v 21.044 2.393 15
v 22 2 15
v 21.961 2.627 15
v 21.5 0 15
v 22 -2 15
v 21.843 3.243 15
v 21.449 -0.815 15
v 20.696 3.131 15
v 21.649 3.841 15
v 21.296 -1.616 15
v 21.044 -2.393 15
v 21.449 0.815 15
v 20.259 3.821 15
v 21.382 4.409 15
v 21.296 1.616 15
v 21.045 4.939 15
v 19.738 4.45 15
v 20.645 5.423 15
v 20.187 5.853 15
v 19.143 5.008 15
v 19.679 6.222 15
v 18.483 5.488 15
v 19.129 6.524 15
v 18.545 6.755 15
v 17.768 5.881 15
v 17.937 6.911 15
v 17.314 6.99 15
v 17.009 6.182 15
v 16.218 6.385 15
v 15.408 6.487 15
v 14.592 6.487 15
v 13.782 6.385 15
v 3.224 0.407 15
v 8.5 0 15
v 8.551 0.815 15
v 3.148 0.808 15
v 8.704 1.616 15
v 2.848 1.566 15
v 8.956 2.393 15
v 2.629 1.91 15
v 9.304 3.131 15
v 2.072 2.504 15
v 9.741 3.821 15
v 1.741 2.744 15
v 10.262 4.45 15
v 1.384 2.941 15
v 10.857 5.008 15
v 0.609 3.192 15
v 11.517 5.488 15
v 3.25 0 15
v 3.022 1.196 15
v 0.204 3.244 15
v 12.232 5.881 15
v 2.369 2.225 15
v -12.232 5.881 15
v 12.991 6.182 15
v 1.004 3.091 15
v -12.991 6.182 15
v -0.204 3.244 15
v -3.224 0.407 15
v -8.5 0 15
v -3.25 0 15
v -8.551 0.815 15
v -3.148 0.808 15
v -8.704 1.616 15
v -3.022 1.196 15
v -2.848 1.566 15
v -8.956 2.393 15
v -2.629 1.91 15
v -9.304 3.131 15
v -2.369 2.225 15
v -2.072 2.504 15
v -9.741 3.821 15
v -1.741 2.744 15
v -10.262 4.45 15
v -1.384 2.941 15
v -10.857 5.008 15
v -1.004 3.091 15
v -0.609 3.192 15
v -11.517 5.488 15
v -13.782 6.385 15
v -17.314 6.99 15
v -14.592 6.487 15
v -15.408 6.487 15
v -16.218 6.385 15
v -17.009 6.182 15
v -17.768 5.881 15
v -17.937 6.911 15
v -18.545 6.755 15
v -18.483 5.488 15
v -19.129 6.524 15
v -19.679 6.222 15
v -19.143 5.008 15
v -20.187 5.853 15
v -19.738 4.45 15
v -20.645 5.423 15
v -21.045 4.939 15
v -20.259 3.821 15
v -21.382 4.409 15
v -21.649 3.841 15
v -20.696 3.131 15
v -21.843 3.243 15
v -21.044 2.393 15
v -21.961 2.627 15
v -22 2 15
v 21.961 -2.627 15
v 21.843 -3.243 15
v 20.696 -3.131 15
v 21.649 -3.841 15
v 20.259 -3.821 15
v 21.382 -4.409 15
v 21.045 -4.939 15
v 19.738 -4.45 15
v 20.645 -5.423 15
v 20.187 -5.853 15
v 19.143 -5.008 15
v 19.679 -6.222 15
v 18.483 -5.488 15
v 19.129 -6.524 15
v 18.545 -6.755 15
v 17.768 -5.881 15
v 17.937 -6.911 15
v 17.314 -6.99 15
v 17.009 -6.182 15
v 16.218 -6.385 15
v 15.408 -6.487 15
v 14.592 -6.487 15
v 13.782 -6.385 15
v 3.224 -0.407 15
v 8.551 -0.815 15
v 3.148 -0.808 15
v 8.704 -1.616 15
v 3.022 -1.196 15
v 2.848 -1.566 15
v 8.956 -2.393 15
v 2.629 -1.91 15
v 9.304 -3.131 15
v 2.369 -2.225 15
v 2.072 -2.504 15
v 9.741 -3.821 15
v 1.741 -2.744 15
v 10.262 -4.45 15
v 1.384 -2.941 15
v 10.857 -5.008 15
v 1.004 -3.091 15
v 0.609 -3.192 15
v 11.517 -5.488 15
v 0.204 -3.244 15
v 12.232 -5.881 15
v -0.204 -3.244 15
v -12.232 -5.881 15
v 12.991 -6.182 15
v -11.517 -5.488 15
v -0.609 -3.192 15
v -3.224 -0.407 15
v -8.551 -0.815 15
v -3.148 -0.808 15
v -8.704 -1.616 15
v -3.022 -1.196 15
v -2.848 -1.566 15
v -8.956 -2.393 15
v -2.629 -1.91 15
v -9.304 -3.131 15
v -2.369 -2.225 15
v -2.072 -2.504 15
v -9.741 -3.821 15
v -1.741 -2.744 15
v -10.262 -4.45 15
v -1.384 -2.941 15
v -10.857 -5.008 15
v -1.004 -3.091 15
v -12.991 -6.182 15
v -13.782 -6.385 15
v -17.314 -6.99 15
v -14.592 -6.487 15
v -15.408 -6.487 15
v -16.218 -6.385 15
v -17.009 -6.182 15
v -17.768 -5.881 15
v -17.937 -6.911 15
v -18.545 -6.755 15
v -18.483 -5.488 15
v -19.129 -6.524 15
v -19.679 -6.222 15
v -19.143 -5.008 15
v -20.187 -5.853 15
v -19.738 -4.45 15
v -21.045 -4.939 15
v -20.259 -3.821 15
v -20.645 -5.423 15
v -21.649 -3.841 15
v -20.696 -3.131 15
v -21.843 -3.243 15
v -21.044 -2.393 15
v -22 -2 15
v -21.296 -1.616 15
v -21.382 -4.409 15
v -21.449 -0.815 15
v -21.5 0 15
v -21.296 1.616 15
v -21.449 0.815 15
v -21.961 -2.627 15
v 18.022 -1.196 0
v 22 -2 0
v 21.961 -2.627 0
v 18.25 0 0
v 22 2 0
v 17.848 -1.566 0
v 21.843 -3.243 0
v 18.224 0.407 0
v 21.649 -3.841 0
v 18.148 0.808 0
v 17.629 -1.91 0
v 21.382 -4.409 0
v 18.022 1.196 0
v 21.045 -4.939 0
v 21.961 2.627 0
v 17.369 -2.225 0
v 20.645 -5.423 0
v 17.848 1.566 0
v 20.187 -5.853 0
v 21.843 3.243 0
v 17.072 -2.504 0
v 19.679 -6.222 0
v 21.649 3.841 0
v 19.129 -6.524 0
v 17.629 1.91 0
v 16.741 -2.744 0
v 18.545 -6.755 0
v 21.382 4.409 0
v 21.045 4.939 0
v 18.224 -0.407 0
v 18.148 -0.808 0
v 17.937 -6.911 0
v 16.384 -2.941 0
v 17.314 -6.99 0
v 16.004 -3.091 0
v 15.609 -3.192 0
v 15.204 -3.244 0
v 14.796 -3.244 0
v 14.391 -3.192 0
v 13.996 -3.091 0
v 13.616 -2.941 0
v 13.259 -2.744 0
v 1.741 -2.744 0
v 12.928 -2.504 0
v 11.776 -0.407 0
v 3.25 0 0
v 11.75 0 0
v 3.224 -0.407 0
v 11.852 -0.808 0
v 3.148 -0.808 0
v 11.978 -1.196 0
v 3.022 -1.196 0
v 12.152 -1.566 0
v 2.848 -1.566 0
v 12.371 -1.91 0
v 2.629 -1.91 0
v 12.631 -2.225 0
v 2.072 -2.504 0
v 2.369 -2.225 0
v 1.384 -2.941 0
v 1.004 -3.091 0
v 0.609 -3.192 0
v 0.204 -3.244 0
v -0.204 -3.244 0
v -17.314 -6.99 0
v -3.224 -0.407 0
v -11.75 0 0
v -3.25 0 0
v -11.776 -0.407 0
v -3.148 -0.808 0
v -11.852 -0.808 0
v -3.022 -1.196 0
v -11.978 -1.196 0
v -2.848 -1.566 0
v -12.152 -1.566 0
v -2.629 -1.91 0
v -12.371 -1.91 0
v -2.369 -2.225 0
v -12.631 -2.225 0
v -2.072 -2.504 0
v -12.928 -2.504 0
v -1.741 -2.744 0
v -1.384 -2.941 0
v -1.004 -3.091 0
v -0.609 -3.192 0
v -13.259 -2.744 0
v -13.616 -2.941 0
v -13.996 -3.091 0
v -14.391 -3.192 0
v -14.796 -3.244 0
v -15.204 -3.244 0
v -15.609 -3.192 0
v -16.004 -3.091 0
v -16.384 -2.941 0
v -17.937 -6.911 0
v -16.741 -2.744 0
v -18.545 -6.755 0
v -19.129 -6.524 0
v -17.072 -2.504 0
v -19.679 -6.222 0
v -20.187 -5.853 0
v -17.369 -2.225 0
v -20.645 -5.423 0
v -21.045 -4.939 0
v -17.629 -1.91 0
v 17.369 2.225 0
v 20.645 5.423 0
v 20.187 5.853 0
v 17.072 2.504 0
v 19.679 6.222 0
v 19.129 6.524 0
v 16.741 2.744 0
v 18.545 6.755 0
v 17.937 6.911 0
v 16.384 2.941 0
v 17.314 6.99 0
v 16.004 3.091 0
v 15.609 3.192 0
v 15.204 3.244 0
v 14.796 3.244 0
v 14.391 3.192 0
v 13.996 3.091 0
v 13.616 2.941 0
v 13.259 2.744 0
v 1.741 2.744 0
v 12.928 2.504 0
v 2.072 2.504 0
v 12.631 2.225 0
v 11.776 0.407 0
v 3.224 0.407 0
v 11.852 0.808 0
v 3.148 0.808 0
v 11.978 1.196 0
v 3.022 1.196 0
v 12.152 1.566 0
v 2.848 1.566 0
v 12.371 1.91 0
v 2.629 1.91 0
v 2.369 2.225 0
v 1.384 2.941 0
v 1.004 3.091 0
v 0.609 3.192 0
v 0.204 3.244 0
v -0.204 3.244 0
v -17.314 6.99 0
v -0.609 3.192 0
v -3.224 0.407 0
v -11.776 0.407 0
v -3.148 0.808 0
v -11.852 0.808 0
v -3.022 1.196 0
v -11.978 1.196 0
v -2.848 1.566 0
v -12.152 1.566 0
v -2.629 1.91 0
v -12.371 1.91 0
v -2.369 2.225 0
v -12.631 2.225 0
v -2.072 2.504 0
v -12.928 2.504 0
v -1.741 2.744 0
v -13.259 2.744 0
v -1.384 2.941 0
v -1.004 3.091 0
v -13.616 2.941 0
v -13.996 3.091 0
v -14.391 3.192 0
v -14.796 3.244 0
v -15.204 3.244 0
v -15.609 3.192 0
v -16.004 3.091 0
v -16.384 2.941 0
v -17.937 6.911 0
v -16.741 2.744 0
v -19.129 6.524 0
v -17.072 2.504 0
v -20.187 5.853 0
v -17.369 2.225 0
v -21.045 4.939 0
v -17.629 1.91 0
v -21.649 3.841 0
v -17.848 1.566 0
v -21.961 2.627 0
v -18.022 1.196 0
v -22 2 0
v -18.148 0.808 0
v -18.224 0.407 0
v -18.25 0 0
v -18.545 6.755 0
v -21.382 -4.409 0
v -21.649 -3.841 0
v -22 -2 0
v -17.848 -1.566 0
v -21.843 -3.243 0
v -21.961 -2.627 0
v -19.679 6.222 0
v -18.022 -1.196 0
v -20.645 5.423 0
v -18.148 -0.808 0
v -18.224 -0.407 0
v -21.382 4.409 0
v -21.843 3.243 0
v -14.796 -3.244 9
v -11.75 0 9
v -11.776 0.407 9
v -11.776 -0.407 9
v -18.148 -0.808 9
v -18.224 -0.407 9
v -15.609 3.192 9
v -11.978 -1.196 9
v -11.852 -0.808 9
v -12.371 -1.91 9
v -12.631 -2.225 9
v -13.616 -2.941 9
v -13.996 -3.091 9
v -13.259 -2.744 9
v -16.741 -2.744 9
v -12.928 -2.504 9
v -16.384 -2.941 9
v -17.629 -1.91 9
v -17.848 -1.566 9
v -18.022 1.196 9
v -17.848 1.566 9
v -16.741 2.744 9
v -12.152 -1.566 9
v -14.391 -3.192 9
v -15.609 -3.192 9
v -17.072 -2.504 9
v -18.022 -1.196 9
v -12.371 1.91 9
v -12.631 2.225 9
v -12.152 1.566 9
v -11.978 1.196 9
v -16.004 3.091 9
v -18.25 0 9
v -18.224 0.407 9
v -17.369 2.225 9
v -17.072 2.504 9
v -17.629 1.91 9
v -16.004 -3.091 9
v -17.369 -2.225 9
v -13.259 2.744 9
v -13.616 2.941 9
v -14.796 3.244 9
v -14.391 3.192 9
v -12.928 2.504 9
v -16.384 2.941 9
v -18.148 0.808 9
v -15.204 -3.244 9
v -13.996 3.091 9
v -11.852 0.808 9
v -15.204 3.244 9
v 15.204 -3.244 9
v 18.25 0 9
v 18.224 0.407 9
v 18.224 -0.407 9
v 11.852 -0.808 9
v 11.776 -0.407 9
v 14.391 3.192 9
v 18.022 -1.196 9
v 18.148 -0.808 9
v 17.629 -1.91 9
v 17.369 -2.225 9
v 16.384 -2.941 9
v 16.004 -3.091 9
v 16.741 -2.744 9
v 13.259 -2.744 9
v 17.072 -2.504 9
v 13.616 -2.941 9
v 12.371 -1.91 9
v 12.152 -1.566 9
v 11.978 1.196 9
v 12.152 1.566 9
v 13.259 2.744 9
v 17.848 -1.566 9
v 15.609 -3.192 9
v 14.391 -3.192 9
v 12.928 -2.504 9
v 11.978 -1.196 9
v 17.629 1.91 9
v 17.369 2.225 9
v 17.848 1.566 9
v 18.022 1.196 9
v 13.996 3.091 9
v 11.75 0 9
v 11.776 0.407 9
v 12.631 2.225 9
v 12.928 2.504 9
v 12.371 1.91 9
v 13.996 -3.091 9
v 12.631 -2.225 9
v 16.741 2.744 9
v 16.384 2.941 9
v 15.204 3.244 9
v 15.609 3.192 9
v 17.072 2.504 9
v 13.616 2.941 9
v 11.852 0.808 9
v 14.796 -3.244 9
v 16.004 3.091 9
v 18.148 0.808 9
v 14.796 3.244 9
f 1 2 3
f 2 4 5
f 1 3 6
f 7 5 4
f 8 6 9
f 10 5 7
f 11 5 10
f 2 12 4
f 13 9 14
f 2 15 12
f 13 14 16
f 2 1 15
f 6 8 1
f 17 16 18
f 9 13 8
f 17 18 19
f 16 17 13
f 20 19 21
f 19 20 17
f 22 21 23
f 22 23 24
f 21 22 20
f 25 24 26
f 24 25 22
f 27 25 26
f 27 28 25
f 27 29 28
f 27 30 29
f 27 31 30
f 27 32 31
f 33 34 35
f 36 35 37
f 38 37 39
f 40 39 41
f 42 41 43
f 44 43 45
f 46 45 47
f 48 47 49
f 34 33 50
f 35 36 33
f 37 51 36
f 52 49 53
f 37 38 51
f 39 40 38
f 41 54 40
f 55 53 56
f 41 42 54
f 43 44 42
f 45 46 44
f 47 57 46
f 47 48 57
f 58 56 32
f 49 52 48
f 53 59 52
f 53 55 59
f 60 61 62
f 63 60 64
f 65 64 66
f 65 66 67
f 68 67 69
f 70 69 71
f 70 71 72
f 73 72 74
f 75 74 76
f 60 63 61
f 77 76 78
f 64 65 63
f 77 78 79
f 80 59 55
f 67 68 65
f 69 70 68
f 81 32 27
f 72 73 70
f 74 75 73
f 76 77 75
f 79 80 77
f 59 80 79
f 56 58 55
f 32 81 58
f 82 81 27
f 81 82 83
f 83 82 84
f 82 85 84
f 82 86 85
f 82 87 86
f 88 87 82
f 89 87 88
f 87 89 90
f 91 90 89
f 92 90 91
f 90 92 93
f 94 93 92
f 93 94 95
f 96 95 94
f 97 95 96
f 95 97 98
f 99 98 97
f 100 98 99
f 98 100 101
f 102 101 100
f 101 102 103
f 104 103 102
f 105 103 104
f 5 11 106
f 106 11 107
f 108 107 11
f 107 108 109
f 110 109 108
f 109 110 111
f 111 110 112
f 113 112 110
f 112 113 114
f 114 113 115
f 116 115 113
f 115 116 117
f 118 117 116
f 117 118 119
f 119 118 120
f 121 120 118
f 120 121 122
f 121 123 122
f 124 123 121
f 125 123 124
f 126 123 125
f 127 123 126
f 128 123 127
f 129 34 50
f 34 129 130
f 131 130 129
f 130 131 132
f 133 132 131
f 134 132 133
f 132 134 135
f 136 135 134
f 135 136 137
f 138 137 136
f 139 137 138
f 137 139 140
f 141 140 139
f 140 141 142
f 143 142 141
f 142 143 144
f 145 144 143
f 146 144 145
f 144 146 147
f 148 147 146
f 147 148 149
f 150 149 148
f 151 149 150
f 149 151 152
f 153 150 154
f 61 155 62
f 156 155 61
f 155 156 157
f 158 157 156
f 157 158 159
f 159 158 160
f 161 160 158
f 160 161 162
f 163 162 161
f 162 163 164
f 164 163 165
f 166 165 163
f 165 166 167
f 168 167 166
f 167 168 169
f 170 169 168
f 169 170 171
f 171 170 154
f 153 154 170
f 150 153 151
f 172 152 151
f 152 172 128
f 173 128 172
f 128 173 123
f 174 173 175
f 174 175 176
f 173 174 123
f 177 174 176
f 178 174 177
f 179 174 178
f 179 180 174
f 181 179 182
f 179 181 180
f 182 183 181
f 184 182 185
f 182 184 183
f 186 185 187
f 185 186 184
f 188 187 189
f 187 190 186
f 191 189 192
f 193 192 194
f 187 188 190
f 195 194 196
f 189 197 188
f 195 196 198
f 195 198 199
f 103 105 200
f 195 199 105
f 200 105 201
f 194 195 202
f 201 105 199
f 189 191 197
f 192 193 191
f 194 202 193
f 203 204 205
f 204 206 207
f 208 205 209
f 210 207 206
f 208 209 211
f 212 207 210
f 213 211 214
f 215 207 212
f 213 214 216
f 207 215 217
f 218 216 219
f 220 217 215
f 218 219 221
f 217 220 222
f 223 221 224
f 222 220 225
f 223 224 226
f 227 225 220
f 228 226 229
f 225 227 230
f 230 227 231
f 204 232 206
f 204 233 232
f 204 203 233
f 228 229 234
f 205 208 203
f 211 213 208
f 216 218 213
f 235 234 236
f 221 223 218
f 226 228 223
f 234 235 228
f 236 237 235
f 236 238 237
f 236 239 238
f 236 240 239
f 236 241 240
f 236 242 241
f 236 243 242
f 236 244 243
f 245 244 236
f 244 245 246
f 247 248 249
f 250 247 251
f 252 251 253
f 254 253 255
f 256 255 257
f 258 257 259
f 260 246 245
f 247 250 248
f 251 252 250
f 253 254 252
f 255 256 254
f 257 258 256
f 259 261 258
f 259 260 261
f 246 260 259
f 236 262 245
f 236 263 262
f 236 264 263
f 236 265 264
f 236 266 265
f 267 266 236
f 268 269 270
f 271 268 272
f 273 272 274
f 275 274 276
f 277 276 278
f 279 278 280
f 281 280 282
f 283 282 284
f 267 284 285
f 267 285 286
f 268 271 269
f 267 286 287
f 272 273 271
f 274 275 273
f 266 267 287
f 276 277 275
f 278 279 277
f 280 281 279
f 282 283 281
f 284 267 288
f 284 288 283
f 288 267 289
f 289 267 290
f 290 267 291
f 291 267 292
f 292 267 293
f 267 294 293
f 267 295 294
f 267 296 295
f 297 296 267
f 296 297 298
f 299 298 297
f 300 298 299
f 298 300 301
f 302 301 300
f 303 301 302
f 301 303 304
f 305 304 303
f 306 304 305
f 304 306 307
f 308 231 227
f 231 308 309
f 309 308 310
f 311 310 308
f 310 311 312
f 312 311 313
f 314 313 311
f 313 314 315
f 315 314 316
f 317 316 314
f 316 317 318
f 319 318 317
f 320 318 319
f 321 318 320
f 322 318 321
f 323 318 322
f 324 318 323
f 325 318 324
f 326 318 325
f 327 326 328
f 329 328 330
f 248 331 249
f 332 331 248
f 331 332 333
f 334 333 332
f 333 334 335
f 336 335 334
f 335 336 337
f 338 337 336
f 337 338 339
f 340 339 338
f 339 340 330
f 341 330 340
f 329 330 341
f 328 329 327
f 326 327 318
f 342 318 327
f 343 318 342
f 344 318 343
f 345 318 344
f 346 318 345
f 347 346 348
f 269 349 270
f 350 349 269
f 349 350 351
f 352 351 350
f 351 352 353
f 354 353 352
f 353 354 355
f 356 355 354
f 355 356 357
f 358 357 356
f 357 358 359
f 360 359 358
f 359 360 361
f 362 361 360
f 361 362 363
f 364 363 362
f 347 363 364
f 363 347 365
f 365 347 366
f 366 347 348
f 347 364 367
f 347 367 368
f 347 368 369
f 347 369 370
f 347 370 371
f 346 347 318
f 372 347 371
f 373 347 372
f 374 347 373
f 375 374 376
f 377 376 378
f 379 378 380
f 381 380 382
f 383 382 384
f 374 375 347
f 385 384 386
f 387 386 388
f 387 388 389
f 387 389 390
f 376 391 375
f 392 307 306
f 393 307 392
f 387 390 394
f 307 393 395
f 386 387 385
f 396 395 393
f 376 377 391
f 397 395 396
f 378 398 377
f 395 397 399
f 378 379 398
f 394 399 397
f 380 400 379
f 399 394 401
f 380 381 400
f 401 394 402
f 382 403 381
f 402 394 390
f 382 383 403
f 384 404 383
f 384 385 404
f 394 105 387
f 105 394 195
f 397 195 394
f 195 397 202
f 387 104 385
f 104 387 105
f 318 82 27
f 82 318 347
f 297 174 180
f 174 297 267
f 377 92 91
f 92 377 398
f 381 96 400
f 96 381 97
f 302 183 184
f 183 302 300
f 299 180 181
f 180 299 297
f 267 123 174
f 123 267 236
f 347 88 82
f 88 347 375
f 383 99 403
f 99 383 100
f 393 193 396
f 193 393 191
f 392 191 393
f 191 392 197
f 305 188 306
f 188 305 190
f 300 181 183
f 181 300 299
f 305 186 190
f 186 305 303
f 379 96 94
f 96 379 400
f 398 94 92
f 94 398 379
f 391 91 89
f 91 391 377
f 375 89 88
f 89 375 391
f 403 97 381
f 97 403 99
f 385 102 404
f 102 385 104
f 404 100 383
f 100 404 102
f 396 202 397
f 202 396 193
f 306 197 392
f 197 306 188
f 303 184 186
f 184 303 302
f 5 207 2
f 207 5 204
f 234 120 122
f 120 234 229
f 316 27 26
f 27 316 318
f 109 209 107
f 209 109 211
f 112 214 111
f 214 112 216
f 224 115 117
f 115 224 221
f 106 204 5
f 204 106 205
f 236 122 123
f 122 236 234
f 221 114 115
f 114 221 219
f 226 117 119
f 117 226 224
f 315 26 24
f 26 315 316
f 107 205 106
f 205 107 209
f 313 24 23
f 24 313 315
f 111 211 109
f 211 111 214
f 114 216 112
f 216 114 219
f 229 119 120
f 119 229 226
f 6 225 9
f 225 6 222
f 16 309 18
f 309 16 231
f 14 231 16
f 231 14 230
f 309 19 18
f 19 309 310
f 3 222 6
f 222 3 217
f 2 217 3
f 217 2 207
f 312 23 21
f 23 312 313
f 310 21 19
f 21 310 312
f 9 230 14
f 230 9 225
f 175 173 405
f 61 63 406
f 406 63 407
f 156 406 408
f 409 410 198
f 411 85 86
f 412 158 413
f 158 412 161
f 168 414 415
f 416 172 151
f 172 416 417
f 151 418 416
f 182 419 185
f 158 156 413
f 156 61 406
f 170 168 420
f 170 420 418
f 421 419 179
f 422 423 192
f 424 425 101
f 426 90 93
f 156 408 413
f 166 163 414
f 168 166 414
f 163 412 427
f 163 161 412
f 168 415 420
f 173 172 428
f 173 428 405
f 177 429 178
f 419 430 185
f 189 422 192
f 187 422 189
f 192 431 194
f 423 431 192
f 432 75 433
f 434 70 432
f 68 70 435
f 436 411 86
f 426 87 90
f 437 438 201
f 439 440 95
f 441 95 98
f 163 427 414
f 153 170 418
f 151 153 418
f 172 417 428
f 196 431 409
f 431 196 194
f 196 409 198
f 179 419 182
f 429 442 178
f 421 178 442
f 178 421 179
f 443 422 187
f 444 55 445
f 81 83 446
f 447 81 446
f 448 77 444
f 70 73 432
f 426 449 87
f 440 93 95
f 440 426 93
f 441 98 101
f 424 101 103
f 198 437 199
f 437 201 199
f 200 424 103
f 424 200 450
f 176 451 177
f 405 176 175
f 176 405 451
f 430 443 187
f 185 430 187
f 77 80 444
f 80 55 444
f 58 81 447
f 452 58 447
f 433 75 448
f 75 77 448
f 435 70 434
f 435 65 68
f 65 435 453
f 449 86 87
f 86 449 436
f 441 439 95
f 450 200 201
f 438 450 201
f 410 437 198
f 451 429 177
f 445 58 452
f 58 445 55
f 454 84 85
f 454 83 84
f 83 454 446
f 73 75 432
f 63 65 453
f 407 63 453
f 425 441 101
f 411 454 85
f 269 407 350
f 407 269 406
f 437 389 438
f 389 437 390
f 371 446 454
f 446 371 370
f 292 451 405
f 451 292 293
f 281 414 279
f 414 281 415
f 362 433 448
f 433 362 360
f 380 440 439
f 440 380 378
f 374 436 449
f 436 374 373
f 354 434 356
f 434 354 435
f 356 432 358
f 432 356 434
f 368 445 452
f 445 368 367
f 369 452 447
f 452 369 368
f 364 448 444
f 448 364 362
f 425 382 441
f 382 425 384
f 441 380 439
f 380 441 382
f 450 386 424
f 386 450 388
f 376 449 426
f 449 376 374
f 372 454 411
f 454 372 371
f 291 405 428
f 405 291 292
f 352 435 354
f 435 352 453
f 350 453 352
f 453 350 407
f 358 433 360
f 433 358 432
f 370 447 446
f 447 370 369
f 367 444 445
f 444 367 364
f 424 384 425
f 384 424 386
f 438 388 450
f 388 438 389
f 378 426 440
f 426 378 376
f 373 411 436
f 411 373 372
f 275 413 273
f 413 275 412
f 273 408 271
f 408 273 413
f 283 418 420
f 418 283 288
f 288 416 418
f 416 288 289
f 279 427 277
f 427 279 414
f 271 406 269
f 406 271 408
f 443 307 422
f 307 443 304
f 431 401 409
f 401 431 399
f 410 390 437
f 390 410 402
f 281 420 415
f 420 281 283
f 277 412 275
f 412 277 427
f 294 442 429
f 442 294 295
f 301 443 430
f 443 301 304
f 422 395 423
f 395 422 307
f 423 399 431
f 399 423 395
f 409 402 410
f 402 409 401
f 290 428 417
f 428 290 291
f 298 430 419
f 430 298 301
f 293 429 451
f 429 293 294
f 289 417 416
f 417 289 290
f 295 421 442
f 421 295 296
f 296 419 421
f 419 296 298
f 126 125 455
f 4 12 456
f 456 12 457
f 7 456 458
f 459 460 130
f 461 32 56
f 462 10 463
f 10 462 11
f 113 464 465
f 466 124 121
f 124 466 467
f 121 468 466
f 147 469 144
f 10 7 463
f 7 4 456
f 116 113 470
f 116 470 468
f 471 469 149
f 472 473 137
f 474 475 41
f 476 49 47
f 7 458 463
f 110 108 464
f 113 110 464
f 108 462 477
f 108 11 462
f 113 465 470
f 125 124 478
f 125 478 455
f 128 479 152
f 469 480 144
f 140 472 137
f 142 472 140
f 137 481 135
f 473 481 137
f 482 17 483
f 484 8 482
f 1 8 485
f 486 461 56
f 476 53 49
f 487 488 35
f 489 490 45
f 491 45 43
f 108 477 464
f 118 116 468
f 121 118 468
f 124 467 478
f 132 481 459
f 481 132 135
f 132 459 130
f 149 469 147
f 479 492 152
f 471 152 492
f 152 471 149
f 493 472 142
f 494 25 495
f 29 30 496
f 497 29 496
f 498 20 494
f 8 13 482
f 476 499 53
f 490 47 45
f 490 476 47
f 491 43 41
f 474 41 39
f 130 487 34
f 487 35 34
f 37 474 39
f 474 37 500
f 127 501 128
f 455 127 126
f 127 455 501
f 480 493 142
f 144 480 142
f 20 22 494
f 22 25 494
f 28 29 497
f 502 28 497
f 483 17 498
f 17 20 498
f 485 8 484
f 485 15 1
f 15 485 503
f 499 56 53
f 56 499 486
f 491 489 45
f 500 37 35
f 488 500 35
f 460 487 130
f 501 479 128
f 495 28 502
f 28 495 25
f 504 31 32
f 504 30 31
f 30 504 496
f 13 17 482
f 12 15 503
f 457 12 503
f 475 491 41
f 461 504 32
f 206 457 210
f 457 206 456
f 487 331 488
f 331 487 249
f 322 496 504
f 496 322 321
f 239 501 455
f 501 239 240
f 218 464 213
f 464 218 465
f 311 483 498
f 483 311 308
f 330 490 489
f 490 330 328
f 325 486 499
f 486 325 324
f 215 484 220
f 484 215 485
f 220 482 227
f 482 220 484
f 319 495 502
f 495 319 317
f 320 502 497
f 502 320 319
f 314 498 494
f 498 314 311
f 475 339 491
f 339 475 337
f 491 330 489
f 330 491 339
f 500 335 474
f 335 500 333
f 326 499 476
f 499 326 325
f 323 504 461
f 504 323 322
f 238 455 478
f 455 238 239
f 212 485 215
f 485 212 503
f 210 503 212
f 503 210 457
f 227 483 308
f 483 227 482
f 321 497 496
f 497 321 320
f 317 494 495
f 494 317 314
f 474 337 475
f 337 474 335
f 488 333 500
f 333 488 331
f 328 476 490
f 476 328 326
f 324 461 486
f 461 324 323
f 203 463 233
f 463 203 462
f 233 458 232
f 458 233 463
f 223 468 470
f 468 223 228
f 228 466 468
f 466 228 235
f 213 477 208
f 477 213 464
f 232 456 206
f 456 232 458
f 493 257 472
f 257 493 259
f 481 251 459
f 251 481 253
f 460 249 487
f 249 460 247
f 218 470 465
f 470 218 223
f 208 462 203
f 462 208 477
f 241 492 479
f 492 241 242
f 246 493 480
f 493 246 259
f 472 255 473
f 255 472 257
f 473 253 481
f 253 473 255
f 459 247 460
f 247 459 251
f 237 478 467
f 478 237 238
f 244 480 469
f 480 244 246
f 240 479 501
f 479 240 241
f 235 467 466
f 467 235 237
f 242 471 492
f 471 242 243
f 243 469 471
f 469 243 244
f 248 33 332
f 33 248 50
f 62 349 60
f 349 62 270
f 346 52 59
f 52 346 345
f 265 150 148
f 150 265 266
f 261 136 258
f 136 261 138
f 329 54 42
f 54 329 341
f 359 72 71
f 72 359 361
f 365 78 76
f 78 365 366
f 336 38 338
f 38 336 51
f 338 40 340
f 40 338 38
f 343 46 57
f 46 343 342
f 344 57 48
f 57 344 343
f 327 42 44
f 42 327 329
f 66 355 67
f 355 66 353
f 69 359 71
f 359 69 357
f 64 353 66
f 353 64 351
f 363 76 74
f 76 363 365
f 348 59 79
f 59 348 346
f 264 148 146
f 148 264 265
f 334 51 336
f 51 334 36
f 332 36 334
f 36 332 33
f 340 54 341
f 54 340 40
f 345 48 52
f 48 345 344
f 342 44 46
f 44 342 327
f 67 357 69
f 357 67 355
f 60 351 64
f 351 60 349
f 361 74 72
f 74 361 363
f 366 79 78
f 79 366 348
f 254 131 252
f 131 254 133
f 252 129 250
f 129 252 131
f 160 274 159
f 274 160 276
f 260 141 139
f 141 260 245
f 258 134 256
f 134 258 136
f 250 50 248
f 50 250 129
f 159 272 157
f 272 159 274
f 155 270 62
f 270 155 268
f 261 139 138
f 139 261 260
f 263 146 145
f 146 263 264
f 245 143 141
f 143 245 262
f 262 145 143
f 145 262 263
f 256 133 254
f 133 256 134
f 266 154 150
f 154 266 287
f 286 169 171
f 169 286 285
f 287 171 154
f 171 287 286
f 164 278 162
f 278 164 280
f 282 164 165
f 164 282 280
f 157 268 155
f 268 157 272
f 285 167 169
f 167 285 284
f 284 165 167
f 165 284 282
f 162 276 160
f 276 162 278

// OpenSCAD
$fn = 50;


difference() {
	union() {
		cylinder(h = 15, r = 7.0000000000);
		translate(v = [-7.5000000000, 0.0000000000, 0]) {
			hull() {
				translate(v = [-9.5000000000, 2.0000000000, 0]) {
					cylinder(h = 15, r = 5);
				}
				translate(v = [9.5000000000, 2.0000000000, 0]) {
					cylinder(h = 15, r = 5);
				}
				translate(v = [-9.5000000000, -2.0000000000, 0]) {
					cylinder(h = 15, r = 5);
				}
				translate(v = [9.5000000000, -2.0000000000, 0]) {
					cylinder(h = 15, r = 5);
				}
			}
		}
		translate(v = [-7.5000000000, 0.0000000000, 0]) {
			hull() {
				translate(v = [-9.5000000000, 2.0000000000, 0]) {
					cylinder(h = 15, r = 5);
				}
				translate(v = [9.5000000000, 2.0000000000, 0]) {
					cylinder(h = 15, r = 5);
				}
				translate(v = [-9.5000000000, -2.0000000000, 0]) {
					cylinder(h = 15, r = 5);
				}
				translate(v = [9.5000000000, -2.0000000000, 0]) {
					cylinder(h = 15, r = 5);
				}
			}
		}
		translate(v = [7.5000000000, 0.0000000000, 0]) {
			hull() {
				translate(v = [-9.5000000000, 2.0000000000, 0]) {
					cylinder(h = 15, r = 5);
				}
				translate(v = [9.5000000000, 2.0000000000, 0]) {
					cylinder(h = 15, r = 5);
				}
				translate(v = [-9.5000000000, -2.0000000000, 0]) {
					cylinder(h = 15, r = 5);
				}
				translate(v = [9.5000000000, -2.0000000000, 0]) {
					cylinder(h = 15, r = 5);
				}
			}
		}
		translate(v = [7.5000000000, 0.0000000000, 0]) {
			hull() {
				translate(v = [-9.5000000000, 2.0000000000, 0]) {
					cylinder(h = 15, r = 5);
				}
				translate(v = [9.5000000000, 2.0000000000, 0]) {
					cylinder(h = 15, r = 5);
				}
				translate(v = [-9.5000000000, -2.0000000000, 0]) {
					cylinder(h = 15, r = 5);
				}
				translate(v = [9.5000000000, -2.0000000000, 0]) {
					cylinder(h = 15, r = 5);
				}
			}
		}
	}
	union() {
		translate(v = [-15.0000000000, 0.0000000000, 15]) {
			rotate(a = [0, 0, 0]) {
				difference() {
					union() {
						#translate(v = [0, 0, -15.0000000000]) {
							cylinder(h = 15, r = 2.2500000000);
						}
						#translate(v = [0, 0, -6]) {
							cylinder(h = 6, r1 = 3.2500000000, r2 = 6.5000000000);
						}
						#translate(v = [0, 0, -15.0000000000]) {
							cylinder(h = 15, r = 3.2500000000);
						}
						#translate(v = [0, 0, -15.0000000000]) {
							cylinder(h = 15, r = 2.2500000000);
						}
					}
					union();
				}
			}
		}
		translate(v = [-15.0000000000, 0.0000000000, 15]) {
			rotate(a = [0, 0, 0]) {
				difference() {
					union() {
						#translate(v = [0, 0, -15.0000000000]) {
							cylinder(h = 15, r = 2.2500000000);
						}
						#translate(v = [0, 0, -6]) {
							cylinder(h = 6, r1 = 3.2500000000, r2 = 6.5000000000);
						}
						#translate(v = [0, 0, -15.0000000000]) {
							cylinder(h = 15, r = 3.2500000000);
						}
						#translate(v = [0, 0, -15.0000000000]) {
							cylinder(h = 15, r = 2.2500000000);
						}
					}
					union();
				}
			}
		}
		translate(v = [15.0000000000, 0.0000000000, 15]) {
			rotate(a = [0, 0, 0]) {
				difference() {
					union() {
						#translate(v = [0, 0, -15.0000000000]) {
							cylinder(h = 15, r = 2.2500000000);
						}
						#translate(v = [0, 0, -6]) {
							cylinder(h = 6, r1 = 3.2500000000, r2 = 6.5000000000);
						}
						#translate(v = [0, 0, -15.0000000000]) {
							cylinder(h = 15, r = 3.2500000000);
						}
						#translate(v = [0, 0, -15.0000000000]) {
							cylinder(h = 15, r = 2.2500000000);
						}
					}
					union();
				}
			}
		}
		translate(v = [15.0000000000, 0.0000000000, 15]) {
			rotate(a = [0, 0, 0]) {
				difference() {
					union() {
						#translate(v = [0, 0, -15.0000000000]) {
							cylinder(h = 15, r = 2.2500000000);
						}
						#translate(v = [0, 0, -6]) {
							cylinder(h = 6, r1 = 3.2500000000, r2 = 6.5000000000);
						}
						#translate(v = [0, 0, -15.0000000000]) {
							cylinder(h = 15, r = 3.2500000000);
						}
						#translate(v = [0, 0, -15.0000000000]) {
							cylinder(h = 15, r = 2.2500000000);
						}
					}
					union();
				}
			}
		}
		translate(v = [0, 0, -100]) {
			cylinder(h = 200, r = 3.2500000000);
		}
		translate(v = [0, 0, -100]) {
			cylinder(h = 200, r = 1.8000000000);
		}
	}
}
